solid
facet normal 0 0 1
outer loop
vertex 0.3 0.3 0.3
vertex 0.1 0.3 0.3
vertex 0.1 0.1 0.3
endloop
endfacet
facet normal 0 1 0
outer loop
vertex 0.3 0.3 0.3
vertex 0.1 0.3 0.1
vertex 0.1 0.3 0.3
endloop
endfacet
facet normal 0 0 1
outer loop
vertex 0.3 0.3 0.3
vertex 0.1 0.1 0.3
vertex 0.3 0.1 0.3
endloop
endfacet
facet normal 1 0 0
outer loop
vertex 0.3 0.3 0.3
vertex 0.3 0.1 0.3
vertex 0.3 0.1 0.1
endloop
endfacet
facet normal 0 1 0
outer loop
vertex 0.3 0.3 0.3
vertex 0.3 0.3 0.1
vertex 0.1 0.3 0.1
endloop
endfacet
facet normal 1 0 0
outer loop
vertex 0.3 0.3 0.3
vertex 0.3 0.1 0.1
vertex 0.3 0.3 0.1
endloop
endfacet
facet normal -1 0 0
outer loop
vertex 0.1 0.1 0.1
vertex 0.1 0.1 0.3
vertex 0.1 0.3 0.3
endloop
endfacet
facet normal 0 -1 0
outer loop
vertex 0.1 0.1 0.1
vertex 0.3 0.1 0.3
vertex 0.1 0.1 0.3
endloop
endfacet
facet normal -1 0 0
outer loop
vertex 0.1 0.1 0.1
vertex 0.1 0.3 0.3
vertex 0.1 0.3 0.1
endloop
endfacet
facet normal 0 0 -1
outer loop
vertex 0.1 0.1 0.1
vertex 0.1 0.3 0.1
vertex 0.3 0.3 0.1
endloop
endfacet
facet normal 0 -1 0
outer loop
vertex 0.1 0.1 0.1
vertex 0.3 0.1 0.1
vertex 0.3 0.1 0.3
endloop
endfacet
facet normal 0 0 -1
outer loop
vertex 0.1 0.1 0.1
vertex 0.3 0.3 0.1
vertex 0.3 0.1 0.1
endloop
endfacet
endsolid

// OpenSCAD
intersection(){cube([0.3,0.3,0.3]);translate([0.1,0.1,0.1])cube([0.3,0.3,0.3]);}
